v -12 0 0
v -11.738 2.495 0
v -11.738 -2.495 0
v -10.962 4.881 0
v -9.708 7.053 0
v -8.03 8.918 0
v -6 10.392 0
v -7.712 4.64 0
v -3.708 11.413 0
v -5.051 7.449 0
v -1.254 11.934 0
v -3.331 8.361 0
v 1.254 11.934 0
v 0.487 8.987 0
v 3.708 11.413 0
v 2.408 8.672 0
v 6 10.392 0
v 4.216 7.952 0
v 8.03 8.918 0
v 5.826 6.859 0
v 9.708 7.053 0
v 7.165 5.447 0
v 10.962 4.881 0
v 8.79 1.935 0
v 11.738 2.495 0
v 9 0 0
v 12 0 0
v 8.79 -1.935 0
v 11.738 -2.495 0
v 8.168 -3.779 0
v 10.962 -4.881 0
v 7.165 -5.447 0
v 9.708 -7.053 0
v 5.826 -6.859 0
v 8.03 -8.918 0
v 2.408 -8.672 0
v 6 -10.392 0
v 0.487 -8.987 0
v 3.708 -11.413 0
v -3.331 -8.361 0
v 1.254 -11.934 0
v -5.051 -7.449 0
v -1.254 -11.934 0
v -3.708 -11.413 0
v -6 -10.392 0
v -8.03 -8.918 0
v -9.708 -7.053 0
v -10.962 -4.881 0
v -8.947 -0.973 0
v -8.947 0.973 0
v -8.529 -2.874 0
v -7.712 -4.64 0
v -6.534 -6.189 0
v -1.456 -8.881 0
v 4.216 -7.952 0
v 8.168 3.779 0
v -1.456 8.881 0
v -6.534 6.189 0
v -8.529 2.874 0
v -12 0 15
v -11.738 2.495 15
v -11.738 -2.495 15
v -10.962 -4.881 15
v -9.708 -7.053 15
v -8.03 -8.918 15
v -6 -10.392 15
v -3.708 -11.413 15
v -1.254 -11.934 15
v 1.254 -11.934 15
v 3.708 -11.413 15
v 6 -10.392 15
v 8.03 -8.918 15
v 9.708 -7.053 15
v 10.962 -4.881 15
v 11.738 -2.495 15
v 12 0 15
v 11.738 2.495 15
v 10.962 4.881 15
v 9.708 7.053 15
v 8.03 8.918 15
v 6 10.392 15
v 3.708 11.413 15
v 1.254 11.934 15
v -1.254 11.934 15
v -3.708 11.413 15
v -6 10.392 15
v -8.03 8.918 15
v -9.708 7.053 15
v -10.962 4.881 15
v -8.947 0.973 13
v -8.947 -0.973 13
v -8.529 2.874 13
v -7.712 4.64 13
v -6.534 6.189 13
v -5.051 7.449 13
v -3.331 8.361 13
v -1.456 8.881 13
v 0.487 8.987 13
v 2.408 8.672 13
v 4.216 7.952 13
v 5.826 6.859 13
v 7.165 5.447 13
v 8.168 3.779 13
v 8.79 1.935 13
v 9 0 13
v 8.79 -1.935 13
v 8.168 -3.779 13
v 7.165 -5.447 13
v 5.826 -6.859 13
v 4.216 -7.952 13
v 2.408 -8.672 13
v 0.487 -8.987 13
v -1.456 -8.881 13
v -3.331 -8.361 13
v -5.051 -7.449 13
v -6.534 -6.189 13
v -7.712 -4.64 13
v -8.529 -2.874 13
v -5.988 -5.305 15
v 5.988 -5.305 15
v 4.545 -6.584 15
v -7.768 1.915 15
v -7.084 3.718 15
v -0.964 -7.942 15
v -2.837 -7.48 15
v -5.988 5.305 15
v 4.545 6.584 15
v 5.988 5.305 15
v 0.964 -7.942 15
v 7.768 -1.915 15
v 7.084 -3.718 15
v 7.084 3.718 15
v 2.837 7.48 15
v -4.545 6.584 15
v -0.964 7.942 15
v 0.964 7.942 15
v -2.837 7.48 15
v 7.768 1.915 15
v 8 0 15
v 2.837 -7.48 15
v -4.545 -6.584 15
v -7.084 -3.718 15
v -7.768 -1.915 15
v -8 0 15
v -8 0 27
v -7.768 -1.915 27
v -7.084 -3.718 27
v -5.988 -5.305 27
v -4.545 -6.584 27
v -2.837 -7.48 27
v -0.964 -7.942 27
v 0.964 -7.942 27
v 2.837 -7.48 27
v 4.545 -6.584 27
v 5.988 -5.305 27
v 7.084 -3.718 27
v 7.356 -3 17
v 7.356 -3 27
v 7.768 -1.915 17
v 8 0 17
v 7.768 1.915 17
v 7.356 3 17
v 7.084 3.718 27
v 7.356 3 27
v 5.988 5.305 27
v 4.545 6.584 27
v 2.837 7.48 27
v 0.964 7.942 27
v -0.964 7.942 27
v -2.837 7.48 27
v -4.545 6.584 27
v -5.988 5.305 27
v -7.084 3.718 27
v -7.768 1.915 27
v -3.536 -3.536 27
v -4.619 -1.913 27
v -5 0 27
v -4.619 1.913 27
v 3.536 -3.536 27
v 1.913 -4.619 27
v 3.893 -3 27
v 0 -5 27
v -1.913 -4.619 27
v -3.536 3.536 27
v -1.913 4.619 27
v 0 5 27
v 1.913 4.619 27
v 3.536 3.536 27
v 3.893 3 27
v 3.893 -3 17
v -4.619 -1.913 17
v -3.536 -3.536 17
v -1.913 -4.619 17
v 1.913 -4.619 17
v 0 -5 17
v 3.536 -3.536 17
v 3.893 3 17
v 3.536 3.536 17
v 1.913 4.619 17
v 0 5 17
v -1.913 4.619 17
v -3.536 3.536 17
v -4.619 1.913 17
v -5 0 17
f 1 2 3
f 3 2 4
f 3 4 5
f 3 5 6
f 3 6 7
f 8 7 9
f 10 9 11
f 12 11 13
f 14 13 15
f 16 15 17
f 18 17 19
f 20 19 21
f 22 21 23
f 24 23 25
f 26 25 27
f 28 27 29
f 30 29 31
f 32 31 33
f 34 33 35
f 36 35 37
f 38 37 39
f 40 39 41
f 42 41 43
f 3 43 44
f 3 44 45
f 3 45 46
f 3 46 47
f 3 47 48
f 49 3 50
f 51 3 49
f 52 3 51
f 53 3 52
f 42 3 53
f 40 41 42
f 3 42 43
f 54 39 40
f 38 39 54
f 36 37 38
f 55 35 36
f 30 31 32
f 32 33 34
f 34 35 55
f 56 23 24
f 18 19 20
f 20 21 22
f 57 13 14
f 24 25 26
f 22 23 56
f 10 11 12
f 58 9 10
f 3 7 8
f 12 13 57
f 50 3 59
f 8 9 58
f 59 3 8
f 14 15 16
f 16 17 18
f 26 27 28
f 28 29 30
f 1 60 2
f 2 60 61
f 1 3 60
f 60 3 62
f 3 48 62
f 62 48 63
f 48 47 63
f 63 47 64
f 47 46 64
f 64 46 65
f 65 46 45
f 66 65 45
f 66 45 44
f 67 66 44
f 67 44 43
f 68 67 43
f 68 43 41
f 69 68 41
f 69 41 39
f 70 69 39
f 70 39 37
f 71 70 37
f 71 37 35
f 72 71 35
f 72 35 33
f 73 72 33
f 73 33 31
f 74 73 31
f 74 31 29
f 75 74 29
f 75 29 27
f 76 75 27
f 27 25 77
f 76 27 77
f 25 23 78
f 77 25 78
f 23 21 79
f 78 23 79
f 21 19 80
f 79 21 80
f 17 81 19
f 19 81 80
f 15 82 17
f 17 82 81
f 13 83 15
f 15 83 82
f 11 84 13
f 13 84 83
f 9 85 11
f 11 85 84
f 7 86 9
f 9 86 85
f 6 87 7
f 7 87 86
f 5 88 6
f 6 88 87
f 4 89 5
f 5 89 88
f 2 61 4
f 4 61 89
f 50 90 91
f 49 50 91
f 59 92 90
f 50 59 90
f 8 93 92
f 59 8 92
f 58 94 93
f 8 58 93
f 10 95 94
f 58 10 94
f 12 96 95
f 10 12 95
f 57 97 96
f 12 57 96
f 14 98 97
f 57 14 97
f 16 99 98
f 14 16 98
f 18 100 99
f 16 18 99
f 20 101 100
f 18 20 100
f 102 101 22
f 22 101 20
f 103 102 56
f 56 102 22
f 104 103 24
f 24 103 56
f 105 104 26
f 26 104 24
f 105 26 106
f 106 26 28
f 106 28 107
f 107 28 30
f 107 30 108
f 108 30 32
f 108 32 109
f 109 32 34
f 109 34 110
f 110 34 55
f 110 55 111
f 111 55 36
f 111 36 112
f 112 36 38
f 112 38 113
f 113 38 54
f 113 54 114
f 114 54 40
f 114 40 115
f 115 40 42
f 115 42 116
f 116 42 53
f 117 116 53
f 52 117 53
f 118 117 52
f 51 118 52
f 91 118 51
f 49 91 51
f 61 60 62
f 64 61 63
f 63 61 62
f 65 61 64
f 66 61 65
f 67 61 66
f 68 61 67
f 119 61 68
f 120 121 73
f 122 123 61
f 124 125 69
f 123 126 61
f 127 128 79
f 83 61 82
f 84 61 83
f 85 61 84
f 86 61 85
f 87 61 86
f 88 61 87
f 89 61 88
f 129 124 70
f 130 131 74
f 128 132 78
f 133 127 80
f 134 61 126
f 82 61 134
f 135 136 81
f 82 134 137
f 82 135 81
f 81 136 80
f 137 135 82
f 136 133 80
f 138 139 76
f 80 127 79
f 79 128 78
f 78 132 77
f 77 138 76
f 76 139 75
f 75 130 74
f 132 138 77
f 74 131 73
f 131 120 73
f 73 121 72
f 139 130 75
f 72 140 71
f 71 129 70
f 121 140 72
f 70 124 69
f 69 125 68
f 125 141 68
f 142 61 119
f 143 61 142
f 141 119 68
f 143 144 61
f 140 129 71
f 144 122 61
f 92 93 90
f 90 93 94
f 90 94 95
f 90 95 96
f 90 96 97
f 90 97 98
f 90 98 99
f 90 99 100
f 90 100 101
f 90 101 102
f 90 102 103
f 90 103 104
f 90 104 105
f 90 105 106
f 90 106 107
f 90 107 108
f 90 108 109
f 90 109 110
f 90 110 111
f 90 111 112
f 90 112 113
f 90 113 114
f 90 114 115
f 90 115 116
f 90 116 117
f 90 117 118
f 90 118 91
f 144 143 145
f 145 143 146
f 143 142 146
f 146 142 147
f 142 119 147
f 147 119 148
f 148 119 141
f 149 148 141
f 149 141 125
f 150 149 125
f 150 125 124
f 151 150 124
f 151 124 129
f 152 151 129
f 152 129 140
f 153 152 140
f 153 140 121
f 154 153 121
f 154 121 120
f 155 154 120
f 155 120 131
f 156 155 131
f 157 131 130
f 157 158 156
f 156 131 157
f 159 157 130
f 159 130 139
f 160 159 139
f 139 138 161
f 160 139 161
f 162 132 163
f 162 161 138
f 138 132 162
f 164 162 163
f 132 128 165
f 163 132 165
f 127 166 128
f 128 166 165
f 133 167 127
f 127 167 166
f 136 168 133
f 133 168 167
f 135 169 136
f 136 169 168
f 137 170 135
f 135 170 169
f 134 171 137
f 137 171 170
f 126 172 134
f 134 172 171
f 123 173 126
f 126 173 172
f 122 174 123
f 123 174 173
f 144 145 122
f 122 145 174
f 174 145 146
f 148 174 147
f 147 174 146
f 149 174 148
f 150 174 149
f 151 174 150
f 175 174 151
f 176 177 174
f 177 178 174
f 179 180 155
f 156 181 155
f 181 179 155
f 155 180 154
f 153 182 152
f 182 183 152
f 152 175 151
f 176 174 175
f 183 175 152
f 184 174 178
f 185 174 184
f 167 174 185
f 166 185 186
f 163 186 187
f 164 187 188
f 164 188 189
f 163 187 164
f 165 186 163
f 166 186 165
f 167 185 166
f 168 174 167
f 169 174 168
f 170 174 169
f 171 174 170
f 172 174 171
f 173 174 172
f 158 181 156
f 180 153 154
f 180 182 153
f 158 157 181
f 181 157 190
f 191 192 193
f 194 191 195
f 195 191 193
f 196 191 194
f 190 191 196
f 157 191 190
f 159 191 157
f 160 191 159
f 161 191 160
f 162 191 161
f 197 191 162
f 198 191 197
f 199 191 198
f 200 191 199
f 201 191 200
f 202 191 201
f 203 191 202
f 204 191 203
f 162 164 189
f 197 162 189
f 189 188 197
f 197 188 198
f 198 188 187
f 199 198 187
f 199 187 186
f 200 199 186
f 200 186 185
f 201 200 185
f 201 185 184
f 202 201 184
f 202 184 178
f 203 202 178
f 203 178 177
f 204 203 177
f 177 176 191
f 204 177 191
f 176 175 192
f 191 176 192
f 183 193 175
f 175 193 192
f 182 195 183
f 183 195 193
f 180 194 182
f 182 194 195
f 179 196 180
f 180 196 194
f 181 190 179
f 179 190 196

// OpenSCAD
union(){
	difference(){
		cylinder(h=15, r=12);
		cylinder(h=13, r=9);
	}
	translate(v=[0,0,14]){
		difference(){
			cylinder(h=13, r=8);
			translate(v=[0,0,3]){
				cylinder(h=11, r=5);
				translate(v=[2,-3,0]){
					cube(size=[6,6,11]);
				}
			}		
		}
	}
}
